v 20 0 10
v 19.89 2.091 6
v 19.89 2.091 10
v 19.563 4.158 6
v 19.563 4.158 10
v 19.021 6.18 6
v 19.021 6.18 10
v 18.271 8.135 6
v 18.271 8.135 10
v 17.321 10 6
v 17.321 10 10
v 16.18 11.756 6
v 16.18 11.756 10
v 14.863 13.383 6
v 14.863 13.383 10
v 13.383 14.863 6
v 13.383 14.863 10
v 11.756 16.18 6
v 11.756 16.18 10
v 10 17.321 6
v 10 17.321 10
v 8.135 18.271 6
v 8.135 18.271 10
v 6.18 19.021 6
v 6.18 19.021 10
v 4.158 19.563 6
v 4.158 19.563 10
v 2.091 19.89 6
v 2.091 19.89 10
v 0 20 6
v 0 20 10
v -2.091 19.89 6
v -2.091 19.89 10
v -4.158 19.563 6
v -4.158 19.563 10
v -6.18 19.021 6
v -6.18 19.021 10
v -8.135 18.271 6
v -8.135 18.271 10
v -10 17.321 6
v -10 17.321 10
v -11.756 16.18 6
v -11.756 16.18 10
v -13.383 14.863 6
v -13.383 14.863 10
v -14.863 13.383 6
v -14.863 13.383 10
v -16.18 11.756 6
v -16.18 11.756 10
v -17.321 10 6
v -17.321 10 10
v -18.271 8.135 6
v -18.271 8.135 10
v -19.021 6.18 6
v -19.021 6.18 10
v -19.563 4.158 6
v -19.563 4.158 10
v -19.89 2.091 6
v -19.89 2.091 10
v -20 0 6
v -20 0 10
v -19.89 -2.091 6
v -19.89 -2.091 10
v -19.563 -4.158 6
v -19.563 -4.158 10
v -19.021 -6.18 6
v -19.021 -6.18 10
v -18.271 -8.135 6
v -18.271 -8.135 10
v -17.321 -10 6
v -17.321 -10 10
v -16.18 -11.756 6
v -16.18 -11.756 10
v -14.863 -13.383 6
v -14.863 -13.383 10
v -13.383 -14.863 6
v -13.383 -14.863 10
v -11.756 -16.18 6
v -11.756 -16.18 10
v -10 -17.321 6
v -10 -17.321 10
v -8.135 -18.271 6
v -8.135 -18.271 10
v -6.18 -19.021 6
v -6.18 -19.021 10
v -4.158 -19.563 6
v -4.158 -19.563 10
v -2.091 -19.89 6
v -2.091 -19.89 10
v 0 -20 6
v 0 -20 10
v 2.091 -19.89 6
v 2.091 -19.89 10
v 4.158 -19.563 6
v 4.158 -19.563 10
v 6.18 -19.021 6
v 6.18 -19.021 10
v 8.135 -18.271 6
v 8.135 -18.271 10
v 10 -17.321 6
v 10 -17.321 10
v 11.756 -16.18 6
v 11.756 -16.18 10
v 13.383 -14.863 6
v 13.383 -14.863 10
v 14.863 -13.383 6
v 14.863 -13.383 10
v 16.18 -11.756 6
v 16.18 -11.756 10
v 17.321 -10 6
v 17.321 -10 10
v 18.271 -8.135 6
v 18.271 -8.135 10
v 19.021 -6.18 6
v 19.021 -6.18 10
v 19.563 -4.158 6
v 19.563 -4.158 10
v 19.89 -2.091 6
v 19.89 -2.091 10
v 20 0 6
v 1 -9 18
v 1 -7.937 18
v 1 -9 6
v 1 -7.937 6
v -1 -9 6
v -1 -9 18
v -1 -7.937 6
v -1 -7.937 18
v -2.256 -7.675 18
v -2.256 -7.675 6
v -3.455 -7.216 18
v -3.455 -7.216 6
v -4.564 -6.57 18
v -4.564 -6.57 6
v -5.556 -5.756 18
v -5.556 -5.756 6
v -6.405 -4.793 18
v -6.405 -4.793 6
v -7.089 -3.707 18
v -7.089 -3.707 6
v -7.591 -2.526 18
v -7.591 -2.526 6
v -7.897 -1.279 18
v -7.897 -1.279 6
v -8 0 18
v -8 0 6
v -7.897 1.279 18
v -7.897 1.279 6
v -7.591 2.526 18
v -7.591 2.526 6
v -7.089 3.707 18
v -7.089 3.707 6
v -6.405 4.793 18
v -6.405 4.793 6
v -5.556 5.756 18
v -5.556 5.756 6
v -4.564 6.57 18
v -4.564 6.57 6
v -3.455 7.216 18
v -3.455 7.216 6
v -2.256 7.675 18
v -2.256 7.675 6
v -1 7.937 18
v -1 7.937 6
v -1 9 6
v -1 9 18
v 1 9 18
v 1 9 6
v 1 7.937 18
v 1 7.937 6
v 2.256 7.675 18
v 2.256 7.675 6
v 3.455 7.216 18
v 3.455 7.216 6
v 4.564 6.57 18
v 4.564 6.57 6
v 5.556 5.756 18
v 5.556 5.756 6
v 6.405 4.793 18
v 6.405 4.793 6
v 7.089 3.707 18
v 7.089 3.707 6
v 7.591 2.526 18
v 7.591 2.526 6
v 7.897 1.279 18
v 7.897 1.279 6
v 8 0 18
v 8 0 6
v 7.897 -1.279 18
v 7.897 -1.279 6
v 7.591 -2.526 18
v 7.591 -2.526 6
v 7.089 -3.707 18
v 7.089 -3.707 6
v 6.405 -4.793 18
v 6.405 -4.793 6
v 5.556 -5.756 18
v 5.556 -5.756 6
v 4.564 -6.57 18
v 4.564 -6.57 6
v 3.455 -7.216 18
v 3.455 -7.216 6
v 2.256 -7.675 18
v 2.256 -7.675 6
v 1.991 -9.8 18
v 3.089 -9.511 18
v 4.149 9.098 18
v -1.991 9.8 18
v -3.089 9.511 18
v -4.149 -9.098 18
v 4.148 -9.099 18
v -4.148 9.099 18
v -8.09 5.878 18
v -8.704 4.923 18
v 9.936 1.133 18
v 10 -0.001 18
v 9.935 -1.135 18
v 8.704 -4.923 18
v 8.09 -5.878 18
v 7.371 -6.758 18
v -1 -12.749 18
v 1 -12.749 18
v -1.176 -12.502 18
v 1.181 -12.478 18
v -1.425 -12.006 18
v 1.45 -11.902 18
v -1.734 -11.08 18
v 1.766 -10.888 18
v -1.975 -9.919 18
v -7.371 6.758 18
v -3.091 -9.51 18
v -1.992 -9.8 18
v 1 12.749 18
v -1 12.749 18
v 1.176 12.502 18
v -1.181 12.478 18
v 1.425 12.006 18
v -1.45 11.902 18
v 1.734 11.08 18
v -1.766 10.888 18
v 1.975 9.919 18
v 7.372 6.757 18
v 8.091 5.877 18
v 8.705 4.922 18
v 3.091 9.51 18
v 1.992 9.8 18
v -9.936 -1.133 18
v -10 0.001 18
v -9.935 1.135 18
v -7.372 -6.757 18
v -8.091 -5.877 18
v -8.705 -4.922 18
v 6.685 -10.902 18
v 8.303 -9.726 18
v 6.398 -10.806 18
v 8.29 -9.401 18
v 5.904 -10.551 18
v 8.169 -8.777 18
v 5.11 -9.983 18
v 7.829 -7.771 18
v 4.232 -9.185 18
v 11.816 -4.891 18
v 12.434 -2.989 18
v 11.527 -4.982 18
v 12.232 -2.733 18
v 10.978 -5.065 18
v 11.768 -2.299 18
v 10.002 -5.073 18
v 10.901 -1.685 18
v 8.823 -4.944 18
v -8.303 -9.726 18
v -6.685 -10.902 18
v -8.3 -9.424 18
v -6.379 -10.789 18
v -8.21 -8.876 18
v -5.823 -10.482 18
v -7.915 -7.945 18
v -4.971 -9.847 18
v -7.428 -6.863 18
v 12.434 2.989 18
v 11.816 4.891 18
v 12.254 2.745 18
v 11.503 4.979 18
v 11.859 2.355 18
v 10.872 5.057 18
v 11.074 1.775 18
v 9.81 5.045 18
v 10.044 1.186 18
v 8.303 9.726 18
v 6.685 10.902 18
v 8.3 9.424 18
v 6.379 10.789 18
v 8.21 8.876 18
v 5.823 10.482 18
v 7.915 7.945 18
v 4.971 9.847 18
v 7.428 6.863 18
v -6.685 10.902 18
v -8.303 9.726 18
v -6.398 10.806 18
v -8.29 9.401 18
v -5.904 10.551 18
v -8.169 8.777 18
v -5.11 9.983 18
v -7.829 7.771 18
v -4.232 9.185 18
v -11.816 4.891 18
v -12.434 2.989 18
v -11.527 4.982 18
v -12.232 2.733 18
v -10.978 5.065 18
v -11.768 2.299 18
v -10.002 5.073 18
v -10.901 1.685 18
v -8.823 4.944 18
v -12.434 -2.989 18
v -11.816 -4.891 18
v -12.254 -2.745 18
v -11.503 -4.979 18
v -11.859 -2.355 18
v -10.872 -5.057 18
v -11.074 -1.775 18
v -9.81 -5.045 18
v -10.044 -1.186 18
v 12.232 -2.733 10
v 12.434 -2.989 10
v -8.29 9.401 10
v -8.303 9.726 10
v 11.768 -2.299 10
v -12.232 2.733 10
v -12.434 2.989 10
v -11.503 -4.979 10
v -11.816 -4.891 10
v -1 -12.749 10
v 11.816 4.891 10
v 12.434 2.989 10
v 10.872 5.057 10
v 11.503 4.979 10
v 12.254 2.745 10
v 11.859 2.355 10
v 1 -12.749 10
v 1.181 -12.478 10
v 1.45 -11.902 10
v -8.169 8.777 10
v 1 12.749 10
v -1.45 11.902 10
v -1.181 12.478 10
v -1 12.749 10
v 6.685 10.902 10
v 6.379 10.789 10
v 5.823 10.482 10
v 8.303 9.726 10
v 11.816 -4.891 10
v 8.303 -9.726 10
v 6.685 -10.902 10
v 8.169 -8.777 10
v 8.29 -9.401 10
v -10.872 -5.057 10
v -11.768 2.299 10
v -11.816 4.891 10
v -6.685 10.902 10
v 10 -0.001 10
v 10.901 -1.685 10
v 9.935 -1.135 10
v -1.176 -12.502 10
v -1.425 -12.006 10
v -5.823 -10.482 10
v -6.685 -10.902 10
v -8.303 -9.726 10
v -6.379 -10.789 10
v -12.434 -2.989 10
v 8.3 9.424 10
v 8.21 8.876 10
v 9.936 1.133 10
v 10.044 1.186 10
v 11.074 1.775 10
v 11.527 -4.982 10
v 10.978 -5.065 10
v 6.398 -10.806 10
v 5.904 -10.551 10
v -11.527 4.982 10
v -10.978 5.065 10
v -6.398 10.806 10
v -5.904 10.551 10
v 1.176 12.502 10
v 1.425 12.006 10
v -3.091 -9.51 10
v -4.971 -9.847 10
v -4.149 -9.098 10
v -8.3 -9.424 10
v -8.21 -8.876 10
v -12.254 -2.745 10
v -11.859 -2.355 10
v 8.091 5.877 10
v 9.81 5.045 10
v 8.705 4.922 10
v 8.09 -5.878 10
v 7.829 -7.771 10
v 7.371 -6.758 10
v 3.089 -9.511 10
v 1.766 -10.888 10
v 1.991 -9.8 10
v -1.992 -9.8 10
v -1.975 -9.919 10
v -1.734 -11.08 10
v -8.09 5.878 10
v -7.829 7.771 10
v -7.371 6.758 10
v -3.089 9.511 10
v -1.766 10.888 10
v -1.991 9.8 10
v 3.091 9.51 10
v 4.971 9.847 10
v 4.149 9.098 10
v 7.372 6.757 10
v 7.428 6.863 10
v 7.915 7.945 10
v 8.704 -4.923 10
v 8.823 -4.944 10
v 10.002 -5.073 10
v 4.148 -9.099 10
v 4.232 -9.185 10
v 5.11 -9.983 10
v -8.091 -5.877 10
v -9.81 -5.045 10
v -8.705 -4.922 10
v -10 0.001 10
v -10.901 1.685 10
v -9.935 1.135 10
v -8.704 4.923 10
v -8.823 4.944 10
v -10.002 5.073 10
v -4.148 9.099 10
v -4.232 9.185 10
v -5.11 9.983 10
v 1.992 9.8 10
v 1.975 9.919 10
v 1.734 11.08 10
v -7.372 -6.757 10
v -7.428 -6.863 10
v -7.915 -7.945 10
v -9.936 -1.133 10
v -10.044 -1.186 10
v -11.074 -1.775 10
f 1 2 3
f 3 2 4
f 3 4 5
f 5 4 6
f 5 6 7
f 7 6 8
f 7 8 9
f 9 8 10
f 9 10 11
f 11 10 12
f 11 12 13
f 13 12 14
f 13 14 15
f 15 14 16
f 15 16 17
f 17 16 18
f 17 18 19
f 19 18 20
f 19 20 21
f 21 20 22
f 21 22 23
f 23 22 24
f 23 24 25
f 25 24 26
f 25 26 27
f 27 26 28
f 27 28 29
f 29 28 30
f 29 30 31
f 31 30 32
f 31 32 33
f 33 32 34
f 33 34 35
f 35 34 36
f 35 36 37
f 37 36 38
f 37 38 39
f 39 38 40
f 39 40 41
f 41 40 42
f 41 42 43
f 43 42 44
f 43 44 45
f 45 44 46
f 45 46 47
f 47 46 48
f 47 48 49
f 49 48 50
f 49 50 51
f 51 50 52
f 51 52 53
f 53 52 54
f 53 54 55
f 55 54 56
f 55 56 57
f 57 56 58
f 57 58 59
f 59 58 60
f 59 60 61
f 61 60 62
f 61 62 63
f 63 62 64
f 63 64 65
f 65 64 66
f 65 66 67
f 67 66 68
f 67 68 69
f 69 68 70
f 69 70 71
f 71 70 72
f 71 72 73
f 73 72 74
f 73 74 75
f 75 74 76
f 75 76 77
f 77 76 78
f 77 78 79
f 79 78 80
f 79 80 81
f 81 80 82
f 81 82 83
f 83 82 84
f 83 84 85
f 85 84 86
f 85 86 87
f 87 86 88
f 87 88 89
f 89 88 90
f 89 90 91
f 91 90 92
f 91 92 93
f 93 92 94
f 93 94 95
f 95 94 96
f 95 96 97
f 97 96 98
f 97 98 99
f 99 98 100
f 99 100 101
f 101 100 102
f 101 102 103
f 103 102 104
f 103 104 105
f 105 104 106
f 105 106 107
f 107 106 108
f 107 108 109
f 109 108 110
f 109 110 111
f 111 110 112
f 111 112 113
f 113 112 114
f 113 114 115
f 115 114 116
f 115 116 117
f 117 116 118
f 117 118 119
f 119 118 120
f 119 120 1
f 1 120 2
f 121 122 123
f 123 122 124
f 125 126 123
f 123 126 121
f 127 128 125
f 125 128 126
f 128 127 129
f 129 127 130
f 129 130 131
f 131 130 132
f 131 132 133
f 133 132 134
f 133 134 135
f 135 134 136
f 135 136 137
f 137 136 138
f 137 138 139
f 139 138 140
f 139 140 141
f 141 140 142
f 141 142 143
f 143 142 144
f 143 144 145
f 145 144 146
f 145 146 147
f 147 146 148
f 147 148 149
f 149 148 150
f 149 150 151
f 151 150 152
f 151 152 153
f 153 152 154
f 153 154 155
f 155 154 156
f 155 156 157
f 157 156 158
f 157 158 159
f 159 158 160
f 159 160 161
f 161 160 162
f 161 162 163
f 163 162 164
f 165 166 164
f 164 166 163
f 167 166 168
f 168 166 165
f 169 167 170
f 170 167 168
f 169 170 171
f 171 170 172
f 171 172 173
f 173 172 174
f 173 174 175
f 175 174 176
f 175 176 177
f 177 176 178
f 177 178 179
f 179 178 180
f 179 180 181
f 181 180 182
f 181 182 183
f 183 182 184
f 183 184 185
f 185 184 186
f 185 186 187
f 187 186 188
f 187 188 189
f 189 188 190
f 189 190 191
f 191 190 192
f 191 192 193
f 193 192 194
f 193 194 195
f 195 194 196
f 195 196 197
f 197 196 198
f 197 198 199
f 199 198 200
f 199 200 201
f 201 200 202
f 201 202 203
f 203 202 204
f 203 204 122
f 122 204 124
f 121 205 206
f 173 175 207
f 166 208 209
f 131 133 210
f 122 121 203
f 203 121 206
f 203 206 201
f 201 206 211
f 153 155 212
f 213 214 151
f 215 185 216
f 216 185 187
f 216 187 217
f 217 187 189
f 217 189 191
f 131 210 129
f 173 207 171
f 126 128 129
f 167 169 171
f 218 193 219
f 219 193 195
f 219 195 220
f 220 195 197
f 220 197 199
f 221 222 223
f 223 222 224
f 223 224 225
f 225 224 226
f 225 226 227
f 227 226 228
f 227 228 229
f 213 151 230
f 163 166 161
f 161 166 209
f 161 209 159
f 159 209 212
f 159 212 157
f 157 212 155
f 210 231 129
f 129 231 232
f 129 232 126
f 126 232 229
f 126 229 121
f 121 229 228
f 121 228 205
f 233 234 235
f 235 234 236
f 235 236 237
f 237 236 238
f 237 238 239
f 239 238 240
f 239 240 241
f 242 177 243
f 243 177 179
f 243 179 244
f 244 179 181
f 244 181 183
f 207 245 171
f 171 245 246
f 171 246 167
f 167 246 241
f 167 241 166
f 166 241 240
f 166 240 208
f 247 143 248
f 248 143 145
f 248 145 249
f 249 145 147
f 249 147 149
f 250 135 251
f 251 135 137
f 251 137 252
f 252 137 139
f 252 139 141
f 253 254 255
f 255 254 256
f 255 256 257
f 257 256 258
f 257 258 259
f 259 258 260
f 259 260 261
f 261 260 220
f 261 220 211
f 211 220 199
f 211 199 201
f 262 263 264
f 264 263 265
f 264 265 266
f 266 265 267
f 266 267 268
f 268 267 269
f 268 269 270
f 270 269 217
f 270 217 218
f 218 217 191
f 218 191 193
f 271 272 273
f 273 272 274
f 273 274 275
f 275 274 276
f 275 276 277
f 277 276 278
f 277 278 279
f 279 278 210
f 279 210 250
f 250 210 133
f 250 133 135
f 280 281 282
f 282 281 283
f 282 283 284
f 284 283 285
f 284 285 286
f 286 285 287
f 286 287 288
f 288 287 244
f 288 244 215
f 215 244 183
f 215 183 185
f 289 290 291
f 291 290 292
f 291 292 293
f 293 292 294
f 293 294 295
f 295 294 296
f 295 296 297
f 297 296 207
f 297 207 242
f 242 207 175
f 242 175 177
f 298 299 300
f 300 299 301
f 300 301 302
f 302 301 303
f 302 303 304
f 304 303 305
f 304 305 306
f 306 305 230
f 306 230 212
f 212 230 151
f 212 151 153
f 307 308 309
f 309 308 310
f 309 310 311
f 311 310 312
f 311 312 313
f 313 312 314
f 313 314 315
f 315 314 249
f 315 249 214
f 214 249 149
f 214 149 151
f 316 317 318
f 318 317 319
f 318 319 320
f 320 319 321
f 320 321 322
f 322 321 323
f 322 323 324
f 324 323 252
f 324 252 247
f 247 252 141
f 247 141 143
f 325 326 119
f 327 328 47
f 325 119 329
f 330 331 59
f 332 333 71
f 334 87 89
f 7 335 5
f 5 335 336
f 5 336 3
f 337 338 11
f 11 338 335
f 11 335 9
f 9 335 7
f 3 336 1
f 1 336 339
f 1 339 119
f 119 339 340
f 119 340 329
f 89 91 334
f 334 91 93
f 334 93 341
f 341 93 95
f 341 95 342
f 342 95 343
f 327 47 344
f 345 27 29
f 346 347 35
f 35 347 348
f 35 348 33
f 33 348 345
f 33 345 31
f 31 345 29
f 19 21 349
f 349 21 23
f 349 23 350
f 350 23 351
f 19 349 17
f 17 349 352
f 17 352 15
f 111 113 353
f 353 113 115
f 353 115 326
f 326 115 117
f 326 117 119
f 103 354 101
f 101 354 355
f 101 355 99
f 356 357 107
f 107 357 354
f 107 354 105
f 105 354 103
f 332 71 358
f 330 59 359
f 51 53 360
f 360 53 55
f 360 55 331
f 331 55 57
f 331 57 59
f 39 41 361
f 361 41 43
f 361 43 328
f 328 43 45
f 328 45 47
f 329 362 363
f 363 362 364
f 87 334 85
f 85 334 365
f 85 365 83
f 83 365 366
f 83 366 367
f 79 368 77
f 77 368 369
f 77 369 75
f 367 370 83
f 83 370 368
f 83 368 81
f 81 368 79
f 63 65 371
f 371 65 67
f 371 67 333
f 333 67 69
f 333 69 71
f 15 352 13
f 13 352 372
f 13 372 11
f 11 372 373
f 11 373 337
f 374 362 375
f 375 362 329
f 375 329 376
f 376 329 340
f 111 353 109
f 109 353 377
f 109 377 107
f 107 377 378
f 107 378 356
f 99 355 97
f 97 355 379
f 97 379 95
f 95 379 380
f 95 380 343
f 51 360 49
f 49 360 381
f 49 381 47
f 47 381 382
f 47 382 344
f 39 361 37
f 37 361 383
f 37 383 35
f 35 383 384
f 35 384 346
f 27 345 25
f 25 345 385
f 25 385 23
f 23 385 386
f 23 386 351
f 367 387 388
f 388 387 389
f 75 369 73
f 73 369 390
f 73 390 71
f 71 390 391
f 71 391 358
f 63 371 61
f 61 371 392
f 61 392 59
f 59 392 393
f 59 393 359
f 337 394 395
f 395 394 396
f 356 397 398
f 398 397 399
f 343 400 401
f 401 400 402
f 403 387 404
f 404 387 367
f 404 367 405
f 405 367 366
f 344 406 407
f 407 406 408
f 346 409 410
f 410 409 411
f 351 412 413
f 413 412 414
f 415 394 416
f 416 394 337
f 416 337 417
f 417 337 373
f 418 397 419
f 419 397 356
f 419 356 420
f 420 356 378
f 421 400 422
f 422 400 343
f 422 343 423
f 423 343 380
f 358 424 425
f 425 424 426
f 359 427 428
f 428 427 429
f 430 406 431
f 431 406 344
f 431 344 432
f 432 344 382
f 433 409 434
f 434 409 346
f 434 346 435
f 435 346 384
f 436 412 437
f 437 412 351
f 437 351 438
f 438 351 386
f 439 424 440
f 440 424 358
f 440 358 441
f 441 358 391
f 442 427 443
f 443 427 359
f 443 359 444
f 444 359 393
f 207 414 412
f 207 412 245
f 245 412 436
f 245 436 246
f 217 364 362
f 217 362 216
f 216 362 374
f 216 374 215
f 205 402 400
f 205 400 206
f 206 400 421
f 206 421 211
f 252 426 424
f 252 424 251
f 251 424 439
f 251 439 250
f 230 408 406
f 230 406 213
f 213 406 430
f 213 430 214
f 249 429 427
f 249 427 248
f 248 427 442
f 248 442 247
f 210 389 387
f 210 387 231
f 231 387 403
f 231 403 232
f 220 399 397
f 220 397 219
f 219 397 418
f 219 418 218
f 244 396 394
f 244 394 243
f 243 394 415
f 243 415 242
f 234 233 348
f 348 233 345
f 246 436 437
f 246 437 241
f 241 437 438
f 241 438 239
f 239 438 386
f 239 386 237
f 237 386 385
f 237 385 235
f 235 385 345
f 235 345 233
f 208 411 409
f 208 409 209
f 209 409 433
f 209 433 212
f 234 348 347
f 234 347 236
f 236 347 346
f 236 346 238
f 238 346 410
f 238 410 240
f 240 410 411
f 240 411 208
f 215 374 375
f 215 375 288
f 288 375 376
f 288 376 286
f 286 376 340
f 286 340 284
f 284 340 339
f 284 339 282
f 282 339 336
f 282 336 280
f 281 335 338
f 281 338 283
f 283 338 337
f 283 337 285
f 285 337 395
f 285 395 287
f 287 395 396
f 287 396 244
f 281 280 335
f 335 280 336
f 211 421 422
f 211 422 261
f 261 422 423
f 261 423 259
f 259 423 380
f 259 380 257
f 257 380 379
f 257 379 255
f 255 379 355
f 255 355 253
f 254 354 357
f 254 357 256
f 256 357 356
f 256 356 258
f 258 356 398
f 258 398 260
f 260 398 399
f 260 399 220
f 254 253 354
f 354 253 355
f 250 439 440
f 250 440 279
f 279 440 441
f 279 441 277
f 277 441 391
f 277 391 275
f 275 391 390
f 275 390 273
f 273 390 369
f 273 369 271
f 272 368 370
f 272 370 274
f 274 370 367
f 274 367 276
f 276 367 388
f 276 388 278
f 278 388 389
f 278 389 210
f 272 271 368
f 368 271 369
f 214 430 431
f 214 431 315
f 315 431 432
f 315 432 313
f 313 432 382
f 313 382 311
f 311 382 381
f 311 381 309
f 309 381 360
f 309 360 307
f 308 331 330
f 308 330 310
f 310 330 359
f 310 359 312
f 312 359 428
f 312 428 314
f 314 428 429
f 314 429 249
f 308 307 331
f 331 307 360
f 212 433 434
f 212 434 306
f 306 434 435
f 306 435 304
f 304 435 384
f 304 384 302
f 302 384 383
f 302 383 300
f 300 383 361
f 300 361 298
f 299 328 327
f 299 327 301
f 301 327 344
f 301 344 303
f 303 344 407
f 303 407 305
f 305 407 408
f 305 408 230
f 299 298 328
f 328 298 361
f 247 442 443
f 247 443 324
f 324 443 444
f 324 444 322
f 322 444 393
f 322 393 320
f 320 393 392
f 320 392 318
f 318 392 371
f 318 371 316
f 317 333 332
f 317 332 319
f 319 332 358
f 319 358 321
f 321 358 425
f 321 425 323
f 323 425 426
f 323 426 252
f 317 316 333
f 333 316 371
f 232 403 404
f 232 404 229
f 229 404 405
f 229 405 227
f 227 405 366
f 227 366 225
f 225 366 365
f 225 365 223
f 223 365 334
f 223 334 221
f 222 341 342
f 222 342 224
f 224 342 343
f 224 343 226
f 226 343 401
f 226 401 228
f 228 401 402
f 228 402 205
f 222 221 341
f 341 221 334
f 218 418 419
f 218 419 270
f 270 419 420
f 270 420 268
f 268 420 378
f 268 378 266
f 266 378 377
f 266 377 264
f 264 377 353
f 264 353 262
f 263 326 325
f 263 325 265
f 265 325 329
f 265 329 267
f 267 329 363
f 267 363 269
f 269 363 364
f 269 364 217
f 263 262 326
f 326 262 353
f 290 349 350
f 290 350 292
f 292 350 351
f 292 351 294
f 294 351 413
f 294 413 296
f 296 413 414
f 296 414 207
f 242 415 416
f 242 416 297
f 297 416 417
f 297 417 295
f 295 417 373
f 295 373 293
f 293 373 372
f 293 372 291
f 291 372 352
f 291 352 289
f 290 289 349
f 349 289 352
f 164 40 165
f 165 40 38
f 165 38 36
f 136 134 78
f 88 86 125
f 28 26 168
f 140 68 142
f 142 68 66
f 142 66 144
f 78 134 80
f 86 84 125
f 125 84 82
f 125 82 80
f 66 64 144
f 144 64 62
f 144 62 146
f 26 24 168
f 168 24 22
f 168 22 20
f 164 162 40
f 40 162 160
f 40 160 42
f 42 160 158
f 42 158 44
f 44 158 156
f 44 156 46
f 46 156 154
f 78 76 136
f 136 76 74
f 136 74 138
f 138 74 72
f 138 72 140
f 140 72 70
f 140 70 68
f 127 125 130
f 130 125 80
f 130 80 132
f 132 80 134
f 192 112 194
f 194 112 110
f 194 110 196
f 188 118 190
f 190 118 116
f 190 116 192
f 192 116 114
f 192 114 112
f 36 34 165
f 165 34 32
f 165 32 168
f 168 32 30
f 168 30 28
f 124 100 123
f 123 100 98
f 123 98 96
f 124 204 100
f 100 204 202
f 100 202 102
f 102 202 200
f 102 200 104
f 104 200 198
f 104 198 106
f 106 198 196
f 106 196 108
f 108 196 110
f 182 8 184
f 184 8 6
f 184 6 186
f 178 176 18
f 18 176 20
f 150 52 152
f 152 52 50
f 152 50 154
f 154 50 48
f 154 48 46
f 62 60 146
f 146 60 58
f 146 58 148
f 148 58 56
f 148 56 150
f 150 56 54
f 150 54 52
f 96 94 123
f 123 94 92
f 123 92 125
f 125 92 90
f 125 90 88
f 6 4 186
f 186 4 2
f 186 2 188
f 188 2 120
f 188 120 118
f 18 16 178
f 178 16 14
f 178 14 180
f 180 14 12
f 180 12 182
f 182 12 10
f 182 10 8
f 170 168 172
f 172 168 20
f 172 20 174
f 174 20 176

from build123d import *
from build123d.topology import SkipClean

# Parameters (mm, degrees)
SKETCH1_R           = 30
BOSS_EXTRUDE1_DEPTH = 10
BOSS_EXTRUDE2_DEPTH = 10
CIRPATTERN1_DEPTH   = 10
BOSS_EXTRUDE4_DEPTH = 8
CIRPATTERN2_COUNT   = 10
SKETCH3_R           = 34.614850266
SKETCH3_R_2         = 20
CUT_EXTRUDE1_DEPTH  = 10
CUT_EXTRUDE2_DEPTH  = 21
CUT_EXTRUDE3_START  = -6
SKETCH4_R           = 20
CUT_EXTRUDE3_DEPTH  = 6


# Read off the part's stored shape, not the designer's step: CirPattern1
with BuildPart() as part:
    # Sketch1 → Boss-Extrude1 (new body)
    with BuildSketch(Plane.XY):
        Circle(SKETCH1_R)
        with BuildLine():
            ThreePointArc((1, -7.937253933), (8, 0), (1, 7.937253933))
            Line((1, 7.937253933), (1, 9))
            Line((1, 9), (-1, 9))
            Line((-1, 9), (-1, 7.937253933))
            ThreePointArc((-1, 7.937253933), (-8, 0), (-1, -7.937253933))
            Line((-1, -7.937253933), (-1, -9))
            Line((-1, -9), (1, -9))
            Line((1, -9), (1, -7.937253933))
        make_face(mode=Mode.SUBTRACT)
    extrude(amount=BOSS_EXTRUDE1_DEPTH)

    # Sketch1<3> → Boss-Extrude2 (add)
    with BuildSketch(Plane.XY):
        with BuildLine():
            ThreePointArc((1.012083684, 33.98493323), (0.506097745, 33.996233101), (-3.37e-07, 34))
            ThreePointArc((-3.37e-07, 34), (-0.505863732, 33.996236584), (-1.011615139, 33.98494718))
            add(Edge.make_bspline(
                [(-1.011615139, 33.98494718), (-1.855460387, 32.888056738), (-2.349185813, 31.525158942), (-2.492791418, 29.896253795)],
                knots=[0.00448065, 0.00448065, 0.00448065, 0.00448065, 0.982900103, 0.982900103, 0.982900103, 0.982900103], degree=3))
            ThreePointArc((-2.492791418, 29.896253795), (0.004835323, 29.99999961), (2.502428492, 29.895448678))
            add(Edge.make_bspline(
                [(1.012083684, 33.98493323), (2.036760796, 32.704388911), (2.533542399, 31.341227394), (2.502428492, 29.895448678)],
                knots=[0.003833031, 0.003833031, 0.003833031, 0.003833031, 0.980908423, 0.980908423, 0.980908423, 0.980908423], degree=3))
        make_face()
    extrude(amount=BOSS_EXTRUDE2_DEPTH)

    # CirPattern1 outline → CirPattern1 (add)
    with BuildSketch(Plane.XY):
        with BuildLine():
            ThreePointArc((9.773545735, 32.564978178), (8.800073923, 32.841417432), (7.818806388, 33.08876345))
            add(Edge.make_bspline(
                [(7.818806388, 33.08876345), (6.719818333, 32.247651865), (5.890172287, 31.058979229), (5.329868249, 29.522745544)],
                knots=[0.00448065, 0.00448065, 0.00448065, 0.00448065, 0.982900103, 0.982900103, 0.982900103, 0.982900103], degree=3))
            ThreePointArc((5.329868249, 29.522745544), (7.769241816, 28.976522939), (10.154671788, 28.229109814))
            add(Edge.make_bspline(
                [(9.773545735, 32.564978178), (10.431878564, 31.062861398), (10.558920581, 29.617571943), (10.154671788, 28.229109814)],
                knots=[0.003833031, 0.003833031, 0.003833031, 0.003833031, 0.980908423, 0.980908423, 0.980908423, 0.980908423], degree=3))
        make_face()
        with BuildLine():
            add(Edge.make_bspline(
                [(-9.773096766, 32.565112922), (-10.304292547, 31.287194894), (-10.428450782, 29.842951172), (-10.145571469, 28.232381755)],
                knots=[0.00448065, 0.00448065, 0.00448065, 0.00448065, 0.982900103, 0.982900103, 0.982900103, 0.982900103], degree=3))
            ThreePointArc((-10.145571469, 28.232381755), (-7.759900689, 28.979025887), (-5.320351171, 29.52446212))
            add(Edge.make_bspline(
                [(-7.818350197, 33.088871244), (-6.497158854, 32.117166366), (-5.664492512, 30.929029992), (-5.320351171, 29.52446212)],
                knots=[0.003833031, 0.003833031, 0.003833031, 0.003833031, 0.980908423, 0.980908423, 0.980908423, 0.980908423], degree=3))
            ThreePointArc((-7.818350197, 33.088871244), (-8.799621143, 32.841538754), (-9.773096766, 32.565112922))
        make_face()
        with BuildLine():
            add(Edge.make_bspline(
                [(-17.868557999, 28.926020034), (-18.050904199, 27.554162422), (-17.797034063, 26.126995596), (-17.106947591, 24.644519555)],
                knots=[0.00448065, 0.00448065, 0.00448065, 0.00448065, 0.982900103, 0.982900103, 0.982900103, 0.982900103], degree=3))
            ThreePointArc((-17.106947591, 24.644519555), (-14.995812293, 25.983179438), (-12.780557694, 27.141432259))
            add(Edge.make_bspline(
                [(-16.115976433, 29.937857365), (-14.588307865, 29.34121201), (-13.476501618, 28.409070308), (-12.780557694, 27.141432259)],
                knots=[0.003833031, 0.003833031, 0.003833031, 0.003833031, 0.980908423, 0.980908423, 0.980908423, 0.980908423], degree=3))
            ThreePointArc((-16.115976433, 29.937857365), (-16.999797024, 29.444980916), (-17.868557999, 28.926020034))
        make_face()
        with BuildLine():
            add(Edge.make_bspline(
                [(-24.746306534, 23.315666684), (-24.567376561, 21.943359317), (-23.952778885, 20.630528448), (-22.902513506, 19.377174075)],
                knots=[0.00448065, 0.00448065, 0.00448065, 0.00448065, 0.982900103, 0.982900103, 0.982900103, 0.982900103], degree=3))
            ThreePointArc((-22.902513506, 19.377174075), (-21.209784071, 21.216622251), (-19.369790332, 22.908758643))
            add(Edge.make_bspline(
                [(-23.315325509, 24.746627981), (-21.685287803, 24.565702544), (-20.37010941, 23.953079431), (-19.369790332, 22.908758643)],
                knots=[0.003833031, 0.003833031, 0.003833031, 0.003833031, 0.980908423, 0.980908423, 0.980908423, 0.980908423], degree=3))
            ThreePointArc((-23.315325509, 24.746627981), (-24.041464831, 24.041796289), (-24.746306534, 23.315666684))
        make_face()
        with BuildLine():
            add(Edge.make_bspline(
                [(-29.937635174, 16.11638918), (-29.409622809, 14.837152538), (-28.476181409, 13.728124879), (-27.137310973, 12.789306203)],
                knots=[0.00448065, 0.00448065, 0.00448065, 0.00448065, 0.982900103, 0.982900103, 0.982900103, 0.982900103], degree=3))
            ThreePointArc((-27.137310973, 12.789306203), (-25.978344116, 15.004187319), (-24.639003768, 17.114890984))
            add(Edge.make_bspline(
                [(-28.925773681, 17.868956796), (-27.304451214, 18.116081046), (-25.875527909, 17.864725776), (-24.639003768, 17.114890984)],
                knots=[0.003833031, 0.003833031, 0.003833031, 0.003833031, 0.980908423, 0.980908423, 0.980908423, 0.980908423], degree=3))
            ThreePointArc((-28.925773681, 17.868956796), (-29.44474654, 17.000202975), (-29.937635174, 16.11638918))
        make_face()
        with BuildLine():
            add(Edge.make_bspline(
                [(-33.08876345, 7.818806388), (-32.247651865, 6.719818333), (-31.058979229, 5.890172287), (-29.522745544, 5.329868249)],
                knots=[0.00448065, 0.00448065, 0.00448065, 0.00448065, 0.982900103, 0.982900103, 0.982900103, 0.982900103], degree=3))
            ThreePointArc((-29.522745544, 5.329868249), (-28.97652294, 7.769241816), (-28.229109815, 10.154671789))
            add(Edge.make_bspline(
                [(-32.564978178, 9.773545735), (-31.062861398, 10.431878564), (-29.617571943, 10.558920581), (-28.229109815, 10.154671789)],
                knots=[0.003833031, 0.003833031, 0.003833031, 0.003833031, 0.980908423, 0.980908423, 0.980908423, 0.980908423], degree=3))
            ThreePointArc((-32.564978178, 9.773545735), (-32.841417432, 8.800073923), (-33.08876345, 7.818806388))
        make_face()
        with BuildLine():
            add(Edge.make_bspline(
                [(-33.98494718, -1.011615139), (-32.888056738, -1.855460387), (-31.525158942, -2.349185813), (-29.896253795, -2.492791418)],
                knots=[0.00448065, 0.00448065, 0.00448065, 0.00448065, 0.982900103, 0.982900103, 0.982900103, 0.982900103], degree=3))
            ThreePointArc((-29.896253795, -2.492791418), (-29.999999612, 0.004835323), (-29.895448679, 2.502428492))
            add(Edge.make_bspline(
                [(-33.98493323, 1.012083684), (-32.704388911, 2.036760796), (-31.341227394, 2.533542399), (-29.895448679, 2.502428492)],
                knots=[0.003833031, 0.003833031, 0.003833031, 0.003833031, 0.980908423, 0.980908423, 0.980908423, 0.980908423], degree=3))
            ThreePointArc((-33.98493323, 1.012083684), (-33.999999999, 0.000234376), (-33.98494718, -1.011615139))
        make_face()
        with BuildLine():
            add(Edge.make_bspline(
                [(-32.565112922, -9.773096766), (-31.287194894, -10.304292547), (-29.842951172, -10.428450782), (-28.232381755, -10.145571469)],
                knots=[0.00448065, 0.00448065, 0.00448065, 0.00448065, 0.982900103, 0.982900103, 0.982900103, 0.982900103], degree=3))
            ThreePointArc((-28.232381755, -10.145571469), (-28.979025887, -7.759900689), (-29.52446212, -5.320351171))
            add(Edge.make_bspline(
                [(-33.088871244, -7.818350197), (-32.117166366, -6.497158854), (-30.929029992, -5.664492512), (-29.52446212, -5.320351171)],
                knots=[0.003833031, 0.003833031, 0.003833031, 0.003833031, 0.980908423, 0.980908423, 0.980908423, 0.980908423], degree=3))
            ThreePointArc((-33.088871244, -7.818350197), (-32.841538754, -8.799621143), (-32.565112922, -9.773096766))
        make_face()
        with BuildLine():
            add(Edge.make_bspline(
                [(-28.926020034, -17.868557999), (-27.554162422, -18.050904199), (-26.126995596, -17.797034063), (-24.644519555, -17.106947591)],
                knots=[0.00448065, 0.00448065, 0.00448065, 0.00448065, 0.982900103, 0.982900103, 0.982900103, 0.982900103], degree=3))
            ThreePointArc((-24.644519555, -17.106947591), (-25.983179438, -14.995812293), (-27.141432259, -12.780557694))
            add(Edge.make_bspline(
                [(-29.937857365, -16.115976433), (-29.34121201, -14.588307865), (-28.409070308, -13.476501618), (-27.141432259, -12.780557694)],
                knots=[0.003833031, 0.003833031, 0.003833031, 0.003833031, 0.980908423, 0.980908423, 0.980908423, 0.980908423], degree=3))
            ThreePointArc((-29.937857365, -16.115976433), (-29.444980916, -16.999797024), (-28.926020034, -17.868557999))
        make_face()
        with BuildLine():
            add(Edge.make_bspline(
                [(-23.315666684, -24.746306534), (-21.943359317, -24.567376561), (-20.630528448, -23.952778885), (-19.377174075, -22.902513506)],
                knots=[0.00448065, 0.00448065, 0.00448065, 0.00448065, 0.982900103, 0.982900103, 0.982900103, 0.982900103], degree=3))
            ThreePointArc((-19.377174075, -22.902513506), (-21.21662225, -21.209784071), (-22.908758643, -19.369790331))
            add(Edge.make_bspline(
                [(-24.746627981, -23.315325509), (-24.565702544, -21.685287803), (-23.953079431, -20.37010941), (-22.908758643, -19.369790331)],
                knots=[0.003833031, 0.003833031, 0.003833031, 0.003833031, 0.980908423, 0.980908423, 0.980908423, 0.980908423], degree=3))
            ThreePointArc((-24.746627981, -23.315325509), (-24.041796289, -24.041464831), (-23.315666684, -24.746306534))
        make_face()
        with BuildLine():
            add(Edge.make_bspline(
                [(-16.11638918, -29.937635174), (-14.837152538, -29.409622809), (-13.728124879, -28.476181409), (-12.789306203, -27.137310973)],
                knots=[0.00448065, 0.00448065, 0.00448065, 0.00448065, 0.982900103, 0.982900103, 0.982900103, 0.982900103], degree=3))
            ThreePointArc((-12.789306203, -27.137310973), (-15.004187318, -25.978344115), (-17.114890984, -24.639003767))
            add(Edge.make_bspline(
                [(-17.868956796, -28.925773681), (-18.116081046, -27.304451214), (-17.864725776, -25.875527909), (-17.114890984, -24.639003767)],
                knots=[0.003833031, 0.003833031, 0.003833031, 0.003833031, 0.980908423, 0.980908423, 0.980908423, 0.980908423], degree=3))
            ThreePointArc((-17.868956796, -28.925773681), (-17.000202975, -29.44474654), (-16.11638918, -29.937635174))
        make_face()
        with BuildLine():
            add(Edge.make_bspline(
                [(-7.818806388, -33.08876345), (-6.719818333, -32.247651865), (-5.890172287, -31.058979229), (-5.329868249, -29.522745544)],
                knots=[0.00448065, 0.00448065, 0.00448065, 0.00448065, 0.982900103, 0.982900103, 0.982900103, 0.982900103], degree=3))
            ThreePointArc((-5.329868249, -29.522745544), (-7.769241816, -28.976522939), (-10.154671788, -28.229109814))
            add(Edge.make_bspline(
                [(-9.773545735, -32.564978178), (-10.431878564, -31.062861398), (-10.558920581, -29.617571943), (-10.154671788, -28.229109814)],
                knots=[0.003833031, 0.003833031, 0.003833031, 0.003833031, 0.980908423, 0.980908423, 0.980908423, 0.980908423], degree=3))
            ThreePointArc((-9.773545735, -32.564978178), (-8.800073923, -32.841417432), (-7.818806388, -33.08876345))
        make_face()
        with BuildLine():
            add(Edge.make_bspline(
                [(1.011615139, -33.98494718), (1.855460387, -32.888056738), (2.349185813, -31.525158942), (2.492791418, -29.896253795)],
                knots=[0.00448065, 0.00448065, 0.00448065, 0.00448065, 0.982900103, 0.982900103, 0.982900103, 0.982900103], degree=3))
            ThreePointArc((2.492791418, -29.896253795), (-0.004835323, -29.99999961), (-2.502428492, -29.895448678))
            add(Edge.make_bspline(
                [(-1.012083684, -33.98493323), (-2.036760796, -32.704388911), (-2.533542399, -31.341227394), (-2.502428492, -29.895448678)],
                knots=[0.003833031, 0.003833031, 0.003833031, 0.003833031, 0.980908423, 0.980908423, 0.980908423, 0.980908423], degree=3))
            ThreePointArc((-1.012083684, -33.98493323), (-0.000234376, -33.999999999), (1.011615139, -33.98494718))
        make_face()
        with BuildLine():
            add(Edge.make_bspline(
                [(9.773096766, -32.565112922), (10.304292547, -31.287194894), (10.428450782, -29.842951172), (10.145571469, -28.232381755)],
                knots=[0.00448065, 0.00448065, 0.00448065, 0.00448065, 0.982900103, 0.982900103, 0.982900103, 0.982900103], degree=3))
            ThreePointArc((10.145571469, -28.232381755), (7.759900689, -28.979025885), (5.320351171, -29.524462118))
            add(Edge.make_bspline(
                [(7.818350197, -33.088871244), (6.497158854, -32.117166366), (5.664492512, -30.929029992), (5.320351171, -29.524462118)],
                knots=[0.003833031, 0.003833031, 0.003833031, 0.003833031, 0.980908423, 0.980908423, 0.980908423, 0.980908423], degree=3))
            ThreePointArc((7.818350197, -33.088871244), (8.799621143, -32.841538754), (9.773096766, -32.565112922))
        make_face()
        with BuildLine():
            add(Edge.make_bspline(
                [(17.868557999, -28.926020034), (18.050904199, -27.554162422), (17.797034063, -26.126995596), (17.106947591, -24.644519555)],
                knots=[0.00448065, 0.00448065, 0.00448065, 0.00448065, 0.982900103, 0.982900103, 0.982900103, 0.982900103], degree=3))
            ThreePointArc((17.106947591, -24.644519555), (14.995812292, -25.983179437), (12.780557694, -27.141432258))
            add(Edge.make_bspline(
                [(16.115976433, -29.937857365), (14.588307865, -29.34121201), (13.476501618, -28.409070308), (12.780557694, -27.141432258)],
                knots=[0.003833031, 0.003833031, 0.003833031, 0.003833031, 0.980908423, 0.980908423, 0.980908423, 0.980908423], degree=3))
            ThreePointArc((16.115976433, -29.937857365), (16.999797024, -29.444980916), (17.868557999, -28.926020034))
        make_face()
        with BuildLine():
            add(Edge.make_bspline(
                [(24.746306534, -23.315666684), (24.567376561, -21.943359317), (23.952778885, -20.630528448), (22.902513506, -19.377174075)],
                knots=[0.00448065, 0.00448065, 0.00448065, 0.00448065, 0.982900103, 0.982900103, 0.982900103, 0.982900103], degree=3))
            ThreePointArc((22.902513506, -19.377174075), (21.209784069, -21.216622249), (19.36979033, -22.908758642))
            add(Edge.make_bspline(
                [(23.315325509, -24.746627981), (21.685287803, -24.565702544), (20.37010941, -23.953079431), (19.36979033, -22.908758642)],
                knots=[0.003833031, 0.003833031, 0.003833031, 0.003833031, 0.980908423, 0.980908423, 0.980908423, 0.980908423], degree=3))
            ThreePointArc((23.315325509, -24.746627981), (24.041464831, -24.041796289), (24.746306534, -23.315666684))
        make_face()
        with BuildLine():
            add(Edge.make_bspline(
                [(29.937635174, -16.11638918), (29.409622809, -14.837152538), (28.476181409, -13.728124879), (27.137310973, -12.789306203)],
                knots=[0.00448065, 0.00448065, 0.00448065, 0.00448065, 0.982900103, 0.982900103, 0.982900103, 0.982900103], degree=3))
            ThreePointArc((27.137310973, -12.789306203), (25.978344113, -15.004187317), (24.639003766, -17.114890983))
            add(Edge.make_bspline(
                [(28.925773681, -17.868956796), (27.304451214, -18.116081046), (25.875527909, -17.864725776), (24.639003766, -17.114890983)],
                knots=[0.003833031, 0.003833031, 0.003833031, 0.003833031, 0.980908423, 0.980908423, 0.980908423, 0.980908423], degree=3))
            ThreePointArc((28.925773681, -17.868956796), (29.44474654, -17.000202975), (29.937635174, -16.11638918))
        make_face()
        with BuildLine():
            add(Edge.make_bspline(
                [(33.08876345, -7.818806388), (32.247651865, -6.719818333), (31.058979229, -5.890172287), (29.522745544, -5.329868249)],
                knots=[0.00448065, 0.00448065, 0.00448065, 0.00448065, 0.982900103, 0.982900103, 0.982900103, 0.982900103], degree=3))
            ThreePointArc((29.522745544, -5.329868249), (28.976522937, -7.769241815), (28.229109813, -10.154671788))
            add(Edge.make_bspline(
                [(32.564978178, -9.773545735), (31.062861398, -10.431878564), (29.617571943, -10.558920581), (28.229109813, -10.154671788)],
                knots=[0.003833031, 0.003833031, 0.003833031, 0.003833031, 0.980908423, 0.980908423, 0.980908423, 0.980908423], degree=3))
            ThreePointArc((32.564978178, -9.773545735), (32.841417432, -8.800073923), (33.08876345, -7.818806388))
        make_face()
        with BuildLine():
            add(Edge.make_bspline(
                [(33.98494718, 1.011615139), (32.888056738, 1.855460387), (31.525158942, 2.349185813), (29.896253795, 2.492791418)],
                knots=[0.00448065, 0.00448065, 0.00448065, 0.00448065, 0.982900103, 0.982900103, 0.982900103, 0.982900103], degree=3))
            ThreePointArc((29.896253795, 2.492791418), (29.999999609, -0.004835323), (29.895448677, -2.502428491))
            add(Edge.make_bspline(
                [(33.98493323, -1.012083684), (32.704388911, -2.036760796), (31.341227394, -2.533542399), (29.895448677, -2.502428491)],
                knots=[0.003833031, 0.003833031, 0.003833031, 0.003833031, 0.980908423, 0.980908423, 0.980908423, 0.980908423], degree=3))
            ThreePointArc((33.98493323, -1.012083684), (33.999999999, -0.000234376), (33.98494718, 1.011615139))
        make_face()
        with BuildLine():
            add(Edge.make_bspline(
                [(32.565112922, 9.773096766), (31.287194894, 10.304292547), (29.842951172, 10.428450782), (28.232381755, 10.145571469)],
                knots=[0.00448065, 0.00448065, 0.00448065, 0.00448065, 0.982900103, 0.982900103, 0.982900103, 0.982900103], degree=3))
            ThreePointArc((28.232381755, 10.145571469), (28.979025885, 7.759900688), (29.524462118, 5.320351171))
            add(Edge.make_bspline(
                [(33.088871244, 7.818350197), (32.117166366, 6.497158854), (30.929029992, 5.664492512), (29.524462118, 5.320351171)],
                knots=[0.003833031, 0.003833031, 0.003833031, 0.003833031, 0.980908423, 0.980908423, 0.980908423, 0.980908423], degree=3))
            ThreePointArc((33.088871244, 7.818350197), (32.841538754, 8.799621143), (32.565112922, 9.773096766))
        make_face()
        with BuildLine():
            add(Edge.make_bspline(
                [(28.926020034, 17.868557999), (27.554162422, 18.050904199), (26.126995596, 17.797034063), (24.644519555, 17.106947591)],
                knots=[0.00448065, 0.00448065, 0.00448065, 0.00448065, 0.982900103, 0.982900103, 0.982900103, 0.982900103], degree=3))
            ThreePointArc((24.644519555, 17.106947591), (25.983179437, 14.995812292), (27.141432257, 12.780557694))
            add(Edge.make_bspline(
                [(29.937857365, 16.115976433), (29.34121201, 14.588307865), (28.409070308, 13.476501618), (27.141432257, 12.780557694)],
                knots=[0.003833031, 0.003833031, 0.003833031, 0.003833031, 0.980908423, 0.980908423, 0.980908423, 0.980908423], degree=3))
            ThreePointArc((29.937857365, 16.115976433), (29.444980916, 16.999797024), (28.926020034, 17.868557999))
        make_face()
        with BuildLine():
            add(Edge.make_bspline(
                [(23.315666684, 24.746306534), (21.943359317, 24.567376561), (20.630528448, 23.952778885), (19.377174075, 22.902513506)],
                knots=[0.00448065, 0.00448065, 0.00448065, 0.00448065, 0.982900103, 0.982900103, 0.982900103, 0.982900103], degree=3))
            ThreePointArc((19.377174075, 22.902513506), (21.216622249, 21.20978407), (22.908758642, 19.36979033))
            add(Edge.make_bspline(
                [(24.746627981, 23.315325509), (24.565702544, 21.685287803), (23.953079431, 20.37010941), (22.908758642, 19.36979033)],
                knots=[0.003833031, 0.003833031, 0.003833031, 0.003833031, 0.980908423, 0.980908423, 0.980908423, 0.980908423], degree=3))
            ThreePointArc((24.746627981, 23.315325509), (24.041796289, 24.041464831), (23.315666684, 24.746306534))
        make_face()
        with BuildLine():
            add(Edge.make_bspline(
                [(16.11638918, 29.937635174), (14.837152538, 29.409622809), (13.728124879, 28.476181409), (12.789306203, 27.137310973)],
                knots=[0.00448065, 0.00448065, 0.00448065, 0.00448065, 0.982900103, 0.982900103, 0.982900103, 0.982900103], degree=3))
            ThreePointArc((12.789306203, 27.137310973), (15.004187318, 25.978344114), (17.114890983, 24.639003766))
            add(Edge.make_bspline(
                [(17.868956796, 28.925773681), (18.116081046, 27.304451214), (17.864725776, 25.875527909), (17.114890983, 24.639003766)],
                knots=[0.003833031, 0.003833031, 0.003833031, 0.003833031, 0.980908423, 0.980908423, 0.980908423, 0.980908423], degree=3))
            ThreePointArc((17.868956796, 28.925773681), (17.000202975, 29.44474654), (16.11638918, 29.937635174))
        make_face()
    extrude(amount=CIRPATTERN1_DEPTH)

    # Sketch2 → Boss-Extrude4 (add)
    with BuildSketch(Plane.XY.offset(10)):
        with BuildLine():
            Line((-1, 12.749121765), (1, 12.749121765))
            add(Edge.make_bspline(
                [(1, 12.749121765), (1.551540037, 12.095573804), (1.882350295, 10.612952368), (1.992430772, 9.799500988)],
                knots=[0, 0, 0, 0, 0.976483073, 0.976483073, 0.976483073, 0.976483073], degree=3))
            ThreePointArc((1.992430772, 9.799500988), (-0.000749367, -9.999999972), (-1.990962066, 9.79979949))
            add(Edge.make_bspline(
                [(-1, 12.749121765), (-1.534746296, 12.072275537), (-1.865066984, 10.589753602), (-1.990962066, 9.79979949)],
                knots=[0, 0, 0, 0, 0.975667075, 0.975667075, 0.975667075, 0.975667075], degree=3))
        make_face()
    boss_extrude4 = extrude(amount=BOSS_EXTRUDE4_DEPTH)

    # CirPattern2: Boss-Extrude4 ×10 about axis
    cirpattern2_axis = Axis((0, 0, 18), (0, 0, -1))
    for i in range(1, CIRPATTERN2_COUNT):
        add(boss_extrude4.rotate(cirpattern2_axis, i * 360 / CIRPATTERN2_COUNT))

    # Sketch3 → Cut-Extrude1 (cut)
    with BuildSketch(Plane.XY.offset(10)):
        Circle(SKETCH3_R)
        Circle(SKETCH3_R_2, mode=Mode.SUBTRACT)
    extrude(amount=-CUT_EXTRUDE1_DEPTH, mode=Mode.SUBTRACT)

    # Sketch1<4> → Cut-Extrude2 (cut)
    with SkipClean():  # the faces are left unmerged after this step: merging them gives an invalid solid
        with BuildSketch(Plane.XY):
            with BuildLine():
                Line((-1, 9), (1, 9))
                Line((1, 9), (1, 7.937253933))
                ThreePointArc((1, 7.937253933), (8, 0), (1, -7.937253933))
                Line((1, -7.937253933), (1, -9))
                Line((1, -9), (-1, -9))
                Line((-1, -9), (-1, -7.937253933))
                ThreePointArc((-1, -7.937253933), (-8, 0), (-1, 7.937253933))
                Line((-1, 7.937253933), (-1, 9))
            make_face()
        extrude(amount=CUT_EXTRUDE2_DEPTH, mode=Mode.SUBTRACT)
    add(part.part.scale(1), mode=Mode.REPLACE)  # the faces are merged on a copy

    # Sketch4 → Cut-Extrude3 (cut)
    with BuildSketch(Plane(origin=(0, 0, 0), x_dir=(-1, 0, 0), z_dir=(0, 0, -1)).offset(CUT_EXTRUDE3_START)):
        with Locations(Location((0, 0, 0), (0, 0, 180))):
            Circle(SKETCH4_R)
    extrude(amount=CUT_EXTRUDE3_DEPTH, mode=Mode.SUBTRACT)


solid = part.part
